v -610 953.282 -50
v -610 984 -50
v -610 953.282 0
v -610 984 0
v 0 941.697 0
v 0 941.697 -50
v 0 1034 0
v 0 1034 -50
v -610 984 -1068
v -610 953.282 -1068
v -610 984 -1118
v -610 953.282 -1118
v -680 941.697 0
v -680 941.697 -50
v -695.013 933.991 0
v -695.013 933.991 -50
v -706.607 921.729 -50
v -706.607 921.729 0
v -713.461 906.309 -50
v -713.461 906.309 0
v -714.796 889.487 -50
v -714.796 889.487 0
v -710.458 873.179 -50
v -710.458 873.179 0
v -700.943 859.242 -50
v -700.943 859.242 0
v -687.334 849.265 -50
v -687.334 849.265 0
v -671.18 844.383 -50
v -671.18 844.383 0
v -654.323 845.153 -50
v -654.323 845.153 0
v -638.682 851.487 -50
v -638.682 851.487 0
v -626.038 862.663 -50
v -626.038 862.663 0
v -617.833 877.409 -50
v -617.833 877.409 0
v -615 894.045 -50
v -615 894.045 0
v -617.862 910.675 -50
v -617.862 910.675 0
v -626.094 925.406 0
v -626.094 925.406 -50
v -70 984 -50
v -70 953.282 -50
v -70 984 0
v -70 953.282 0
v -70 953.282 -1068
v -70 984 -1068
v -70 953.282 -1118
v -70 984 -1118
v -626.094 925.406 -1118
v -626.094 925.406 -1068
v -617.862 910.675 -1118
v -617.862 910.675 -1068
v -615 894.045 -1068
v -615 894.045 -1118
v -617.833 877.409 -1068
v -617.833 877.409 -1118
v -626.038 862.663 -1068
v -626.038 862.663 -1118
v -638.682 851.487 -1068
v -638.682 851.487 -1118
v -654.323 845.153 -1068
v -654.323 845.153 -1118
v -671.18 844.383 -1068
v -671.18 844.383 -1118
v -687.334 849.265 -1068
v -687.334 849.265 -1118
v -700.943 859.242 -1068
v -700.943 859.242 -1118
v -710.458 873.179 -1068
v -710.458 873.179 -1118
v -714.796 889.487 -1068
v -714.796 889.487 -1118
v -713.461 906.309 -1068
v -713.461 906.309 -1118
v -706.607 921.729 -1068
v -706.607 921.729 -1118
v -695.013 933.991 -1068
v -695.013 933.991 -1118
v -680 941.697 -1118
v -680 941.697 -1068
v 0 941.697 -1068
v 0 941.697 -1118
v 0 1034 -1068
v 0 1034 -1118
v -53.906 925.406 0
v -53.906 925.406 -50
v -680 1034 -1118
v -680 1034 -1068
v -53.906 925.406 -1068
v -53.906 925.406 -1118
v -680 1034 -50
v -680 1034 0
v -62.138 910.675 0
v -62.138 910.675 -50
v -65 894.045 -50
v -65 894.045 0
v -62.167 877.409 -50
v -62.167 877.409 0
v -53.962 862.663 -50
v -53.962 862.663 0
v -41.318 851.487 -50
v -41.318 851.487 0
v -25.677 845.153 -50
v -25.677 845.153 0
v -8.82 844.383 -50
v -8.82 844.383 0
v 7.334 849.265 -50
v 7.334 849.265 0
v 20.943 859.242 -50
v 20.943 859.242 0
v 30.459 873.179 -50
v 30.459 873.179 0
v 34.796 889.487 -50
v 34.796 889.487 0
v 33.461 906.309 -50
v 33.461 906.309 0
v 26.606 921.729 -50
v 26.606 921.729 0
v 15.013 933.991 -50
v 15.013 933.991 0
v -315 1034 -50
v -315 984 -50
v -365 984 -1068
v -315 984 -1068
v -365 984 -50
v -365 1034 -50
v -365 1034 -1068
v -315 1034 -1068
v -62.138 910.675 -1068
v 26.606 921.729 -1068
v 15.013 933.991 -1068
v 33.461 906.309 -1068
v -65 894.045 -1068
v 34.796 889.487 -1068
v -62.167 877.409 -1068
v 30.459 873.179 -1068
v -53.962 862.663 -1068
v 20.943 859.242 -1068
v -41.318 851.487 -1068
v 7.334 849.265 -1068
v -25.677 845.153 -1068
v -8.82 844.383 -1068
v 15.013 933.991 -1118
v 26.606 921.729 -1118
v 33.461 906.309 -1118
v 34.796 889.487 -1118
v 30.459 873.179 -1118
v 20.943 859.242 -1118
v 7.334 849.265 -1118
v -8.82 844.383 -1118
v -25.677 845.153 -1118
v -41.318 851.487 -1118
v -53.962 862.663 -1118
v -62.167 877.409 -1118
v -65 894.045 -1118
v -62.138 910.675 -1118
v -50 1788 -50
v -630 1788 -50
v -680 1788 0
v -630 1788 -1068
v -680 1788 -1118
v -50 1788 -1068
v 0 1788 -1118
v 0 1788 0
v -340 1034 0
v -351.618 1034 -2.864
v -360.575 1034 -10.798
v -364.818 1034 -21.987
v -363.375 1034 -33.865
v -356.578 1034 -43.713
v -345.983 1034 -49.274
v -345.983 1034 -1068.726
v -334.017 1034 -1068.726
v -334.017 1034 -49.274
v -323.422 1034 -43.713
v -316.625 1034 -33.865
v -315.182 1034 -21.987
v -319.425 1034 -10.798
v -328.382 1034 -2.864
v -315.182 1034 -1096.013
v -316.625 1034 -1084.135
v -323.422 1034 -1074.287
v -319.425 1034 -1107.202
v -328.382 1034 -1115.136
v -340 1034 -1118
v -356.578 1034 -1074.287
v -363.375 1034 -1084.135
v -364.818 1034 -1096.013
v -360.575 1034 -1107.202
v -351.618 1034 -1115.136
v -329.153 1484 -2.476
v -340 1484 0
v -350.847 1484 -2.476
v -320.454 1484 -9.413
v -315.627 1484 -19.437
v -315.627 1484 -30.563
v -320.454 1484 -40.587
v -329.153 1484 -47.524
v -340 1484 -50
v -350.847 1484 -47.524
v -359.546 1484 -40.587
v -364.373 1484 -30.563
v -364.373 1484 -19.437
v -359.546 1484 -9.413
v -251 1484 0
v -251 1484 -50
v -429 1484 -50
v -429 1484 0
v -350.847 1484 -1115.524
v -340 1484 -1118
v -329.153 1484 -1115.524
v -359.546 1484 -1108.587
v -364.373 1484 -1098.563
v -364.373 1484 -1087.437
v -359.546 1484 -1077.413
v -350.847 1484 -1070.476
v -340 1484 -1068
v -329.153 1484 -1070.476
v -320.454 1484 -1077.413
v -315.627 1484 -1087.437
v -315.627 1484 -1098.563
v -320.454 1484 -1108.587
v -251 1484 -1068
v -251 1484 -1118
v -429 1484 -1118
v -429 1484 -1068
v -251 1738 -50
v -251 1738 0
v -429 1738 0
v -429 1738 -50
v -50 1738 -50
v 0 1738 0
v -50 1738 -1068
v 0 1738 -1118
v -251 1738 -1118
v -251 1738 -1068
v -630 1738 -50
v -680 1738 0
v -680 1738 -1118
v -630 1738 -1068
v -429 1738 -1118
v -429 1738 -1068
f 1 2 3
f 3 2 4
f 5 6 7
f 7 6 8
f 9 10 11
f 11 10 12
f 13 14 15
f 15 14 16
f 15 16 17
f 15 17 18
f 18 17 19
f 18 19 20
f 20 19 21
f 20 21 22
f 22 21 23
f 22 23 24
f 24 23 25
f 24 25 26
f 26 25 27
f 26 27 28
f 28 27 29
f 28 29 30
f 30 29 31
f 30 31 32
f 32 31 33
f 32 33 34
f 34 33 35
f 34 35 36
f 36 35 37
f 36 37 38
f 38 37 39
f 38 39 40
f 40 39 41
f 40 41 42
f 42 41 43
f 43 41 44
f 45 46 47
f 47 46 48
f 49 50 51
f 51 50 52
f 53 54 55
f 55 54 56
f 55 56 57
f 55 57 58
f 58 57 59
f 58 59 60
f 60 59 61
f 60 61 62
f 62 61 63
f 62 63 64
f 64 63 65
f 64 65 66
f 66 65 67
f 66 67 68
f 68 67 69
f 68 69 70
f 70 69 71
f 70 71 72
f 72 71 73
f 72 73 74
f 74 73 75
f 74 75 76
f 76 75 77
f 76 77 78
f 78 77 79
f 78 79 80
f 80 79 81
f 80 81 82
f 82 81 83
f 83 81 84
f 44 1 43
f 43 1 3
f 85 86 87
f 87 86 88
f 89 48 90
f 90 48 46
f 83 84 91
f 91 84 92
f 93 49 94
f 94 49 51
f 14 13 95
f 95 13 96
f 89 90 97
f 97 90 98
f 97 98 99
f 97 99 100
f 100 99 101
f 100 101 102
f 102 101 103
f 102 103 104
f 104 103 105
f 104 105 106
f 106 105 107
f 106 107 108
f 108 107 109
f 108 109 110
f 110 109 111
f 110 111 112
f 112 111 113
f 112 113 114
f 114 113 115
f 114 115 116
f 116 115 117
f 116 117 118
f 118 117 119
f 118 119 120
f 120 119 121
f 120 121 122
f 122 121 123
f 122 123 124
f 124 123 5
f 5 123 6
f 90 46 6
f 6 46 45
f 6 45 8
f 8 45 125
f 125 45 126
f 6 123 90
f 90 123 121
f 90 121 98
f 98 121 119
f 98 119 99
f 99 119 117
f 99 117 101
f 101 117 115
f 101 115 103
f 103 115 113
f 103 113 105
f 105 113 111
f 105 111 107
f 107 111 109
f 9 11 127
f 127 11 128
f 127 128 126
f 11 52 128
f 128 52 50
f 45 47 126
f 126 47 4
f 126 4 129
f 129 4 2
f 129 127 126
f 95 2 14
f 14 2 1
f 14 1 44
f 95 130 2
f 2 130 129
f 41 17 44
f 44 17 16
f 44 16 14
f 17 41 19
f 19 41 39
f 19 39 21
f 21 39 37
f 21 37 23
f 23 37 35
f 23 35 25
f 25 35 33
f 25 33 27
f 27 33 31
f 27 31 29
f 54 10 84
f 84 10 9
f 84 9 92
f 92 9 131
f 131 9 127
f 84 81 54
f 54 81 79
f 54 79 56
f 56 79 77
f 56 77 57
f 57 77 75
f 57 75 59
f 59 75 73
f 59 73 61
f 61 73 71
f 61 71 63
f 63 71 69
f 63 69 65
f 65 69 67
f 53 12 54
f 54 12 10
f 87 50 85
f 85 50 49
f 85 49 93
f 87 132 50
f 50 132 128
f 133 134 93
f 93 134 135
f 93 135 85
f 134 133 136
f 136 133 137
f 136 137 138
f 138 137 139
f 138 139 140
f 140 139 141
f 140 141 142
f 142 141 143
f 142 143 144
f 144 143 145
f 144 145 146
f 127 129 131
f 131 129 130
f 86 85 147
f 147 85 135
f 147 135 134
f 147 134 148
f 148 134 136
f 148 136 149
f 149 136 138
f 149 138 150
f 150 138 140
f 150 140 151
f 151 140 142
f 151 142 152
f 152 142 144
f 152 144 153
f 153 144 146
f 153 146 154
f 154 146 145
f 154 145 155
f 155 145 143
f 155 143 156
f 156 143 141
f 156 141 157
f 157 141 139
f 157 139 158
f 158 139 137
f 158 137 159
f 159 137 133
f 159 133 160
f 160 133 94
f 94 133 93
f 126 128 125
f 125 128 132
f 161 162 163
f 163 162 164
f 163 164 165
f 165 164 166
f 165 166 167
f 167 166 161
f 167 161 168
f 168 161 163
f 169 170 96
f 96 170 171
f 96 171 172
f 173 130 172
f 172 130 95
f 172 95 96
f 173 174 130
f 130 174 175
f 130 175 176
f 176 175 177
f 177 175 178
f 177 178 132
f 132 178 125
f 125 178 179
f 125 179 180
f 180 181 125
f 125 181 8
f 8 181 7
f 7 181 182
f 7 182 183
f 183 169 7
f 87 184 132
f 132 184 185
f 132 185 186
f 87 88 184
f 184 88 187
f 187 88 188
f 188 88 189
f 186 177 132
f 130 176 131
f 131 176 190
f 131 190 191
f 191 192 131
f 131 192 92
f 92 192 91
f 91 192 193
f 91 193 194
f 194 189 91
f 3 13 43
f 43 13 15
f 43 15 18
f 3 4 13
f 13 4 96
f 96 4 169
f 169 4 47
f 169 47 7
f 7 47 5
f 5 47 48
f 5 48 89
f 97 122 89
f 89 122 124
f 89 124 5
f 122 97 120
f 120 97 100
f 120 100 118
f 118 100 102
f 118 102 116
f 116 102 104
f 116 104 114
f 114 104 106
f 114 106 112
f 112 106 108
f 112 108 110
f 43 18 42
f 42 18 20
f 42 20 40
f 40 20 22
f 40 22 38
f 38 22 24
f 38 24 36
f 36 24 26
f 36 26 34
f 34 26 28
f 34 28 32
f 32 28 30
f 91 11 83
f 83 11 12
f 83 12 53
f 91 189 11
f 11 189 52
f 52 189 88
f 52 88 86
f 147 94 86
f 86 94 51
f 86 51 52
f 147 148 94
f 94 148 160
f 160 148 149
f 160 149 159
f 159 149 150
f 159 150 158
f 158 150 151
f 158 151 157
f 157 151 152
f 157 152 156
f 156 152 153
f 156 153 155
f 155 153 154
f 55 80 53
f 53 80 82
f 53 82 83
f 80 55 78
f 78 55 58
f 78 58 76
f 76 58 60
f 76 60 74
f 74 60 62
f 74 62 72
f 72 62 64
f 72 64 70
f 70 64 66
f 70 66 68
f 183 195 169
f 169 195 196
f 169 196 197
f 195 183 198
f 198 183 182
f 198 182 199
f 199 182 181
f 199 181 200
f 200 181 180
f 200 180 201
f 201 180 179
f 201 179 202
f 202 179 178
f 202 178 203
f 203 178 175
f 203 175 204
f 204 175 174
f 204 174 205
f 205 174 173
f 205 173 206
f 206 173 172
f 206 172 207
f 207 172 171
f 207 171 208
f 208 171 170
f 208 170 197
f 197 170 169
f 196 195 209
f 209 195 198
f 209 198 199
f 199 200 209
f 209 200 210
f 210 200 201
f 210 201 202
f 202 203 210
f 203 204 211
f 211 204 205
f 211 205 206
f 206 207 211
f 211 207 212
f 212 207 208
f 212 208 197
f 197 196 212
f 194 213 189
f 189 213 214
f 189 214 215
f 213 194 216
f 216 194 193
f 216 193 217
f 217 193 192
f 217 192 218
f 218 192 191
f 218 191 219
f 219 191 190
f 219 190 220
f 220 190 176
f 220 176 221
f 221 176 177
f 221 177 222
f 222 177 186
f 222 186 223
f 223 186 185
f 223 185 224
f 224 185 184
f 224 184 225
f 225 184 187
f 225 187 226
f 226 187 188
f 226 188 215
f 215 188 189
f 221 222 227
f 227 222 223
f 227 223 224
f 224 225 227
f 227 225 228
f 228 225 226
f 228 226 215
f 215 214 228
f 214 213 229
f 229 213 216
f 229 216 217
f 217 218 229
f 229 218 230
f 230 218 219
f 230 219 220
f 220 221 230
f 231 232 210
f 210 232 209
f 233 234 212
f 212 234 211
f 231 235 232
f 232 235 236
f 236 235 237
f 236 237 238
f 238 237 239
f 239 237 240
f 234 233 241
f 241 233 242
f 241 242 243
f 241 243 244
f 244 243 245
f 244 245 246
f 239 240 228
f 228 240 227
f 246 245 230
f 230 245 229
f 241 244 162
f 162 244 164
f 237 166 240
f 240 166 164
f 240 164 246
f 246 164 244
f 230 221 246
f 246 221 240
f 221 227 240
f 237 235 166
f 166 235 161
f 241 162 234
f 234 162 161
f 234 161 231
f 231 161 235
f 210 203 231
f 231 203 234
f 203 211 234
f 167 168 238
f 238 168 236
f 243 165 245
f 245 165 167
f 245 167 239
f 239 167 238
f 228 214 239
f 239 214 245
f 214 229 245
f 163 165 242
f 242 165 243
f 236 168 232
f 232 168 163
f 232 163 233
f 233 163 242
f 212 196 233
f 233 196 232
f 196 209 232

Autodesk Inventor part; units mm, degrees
ref_plane "YZ Plane" through (0, 0, 0) normal (1, 0, 0) x (0, 1, 0)
ref_plane "XZ Plane" through (0, 0, 0) normal (0, 1, 0) x (-1, 0, 0)
ref_plane "XY Plane" through (0, 0, 0) normal (0, 0, 1) x (1, 0, 0)
sketch "Sketch1" plane through (0, 0, 0) normal (0, 1, 0) x (-1, 0, 0)
  line L0 (0, 0) -> (680, 0)
  line L1 (680, 0) -> (680, -1118)
  line L2 (680, -1118) -> (0, -1118)
  line L3 (0, -1118) -> (0, 0)
  dimension "d0" = 680
  dimension "d1" = 1118
extrude "Extrusion1" add sketch "Sketch1" along normal blind 50
sketch "Sketch2" plane through (0, 50, 0) normal (0, 1, 0) x (1, 0, 0)
  line L0 (-50, 50) -> (-630, 50)
  line L1 (-630, 50) -> (-630, 1068)
  line L2 (-630, 1068) -> (-50, 1068)
  line L3 (-50, 1068) -> (-50, 50)
  point P0 (0, 0)
  dimension "d4" = 580
  dimension "d5" = 1018
extrude "Extrusion2" cut sketch "Sketch2" against normal blind 50
sketch "Sketch3" plane through (0, 50, 0) normal (0, 1, 0) x (1, 0, 0)
  point P0 (0, 0)
sketch "Sketch4" plane through (0, 50, 0) normal (0, 1, 0) x (1, 0, 0)
  line L0 (-680, 0) -> (0, 0) projected
  line L1 (-251, 0) -> (-429, 0)
  line L2 (-429, 0) -> (-429, 50)
  line L3 (-429, 50) -> (-251, 50)
  line L4 (-251, 50) -> (-251, 0)
  dimension "d8" = 178
  dimension "d9" = 50
extrude "Extrusion3" add sketch "Sketch4" along normal blind 254
sketch "Sketch5" plane through (0, 50, 0) normal (0, 1, 0) x (1, 0, 0)
  line L0 (0, 1118) -> (-680, 1118) projected
  line L1 (-630, 1068) -> (-50, 1068) projected
  line L2 (-251, 1118) -> (-429, 1118)
  line L3 (-429, 1118) -> (-429, 1068)
  line L4 (-429, 1068) -> (-251, 1068)
  line L5 (-251, 1068) -> (-251, 1118)
  point P0 (0, 0)
  dimension "d12" = 178
extrude "Extrusion4" add sketch "Sketch5" along normal blind 254
sketch "Sketch6" plane through (0, 304, 0) normal (0, 1, 0) x (1, 0, 0)
  circle A0 centre (-340, 25) radius 25
  point P0 (0, 0)
  dimension "d15" = 50
extrude "Extrusion5" add sketch "Sketch6" along normal blind 450
sketch "Sketch7" plane through (0, 304, 0) normal (0, 1, 0) x (1, 0, 0)
  circle A0 centre (-340, 1093) radius 25
  point P0 (0, 0)
  dimension "d18" = 50
extrude "Extrusion6" add sketch "Sketch7" along normal blind 450
sketch "Sketch8" plane through (-340, 754, -25) normal (0, 1, 0) x (1, 0, 0)
  line L0 (-340, -25) -> (340, -25) projected
  line L1 (25, -25) -> (-25, -25)
  line L2 (-25, -25) -> (-25, 1093)
  line L3 (-25, 1093) -> (25, 1093)
  line L4 (25, 1093) -> (25, -25)
  dimension "d21" = 50
  dimension "d22" = 1118
extrude "Extrusion7" add sketch "Sketch8" along normal blind 50
sketch "Sketch9" plane through (-315, 754, -25) normal (1, 0, 0) x (0, 0, -1)
  line L0 (0, 0) -> (-25, 0) projected
  line L1 (-25, 0) -> (25, 0)
  line L2 (25, 0) -> (25, 50)
  line L3 (25, 50) -> (-25, 50)
  line L4 (-25, 50) -> (-25, 0)
  point P0 (-25, -754)
  dimension "d25" = 50
  dimension "d26" = 50
extrude "Extrusion8" add sketch "Sketch9" along normal blind 315
sketch "Sketch10" plane through (-315, 754, -1093) normal (1, 0, 0) x (0, 0, -1)
  line L0 (25, 0) -> (25, 50) projected
  line L1 (25, 0) -> (-25, 0)
  line L2 (-25, 0) -> (-25, 50)
  line L3 (-25, 50) -> (25, 50)
  line L4 (25, 50) -> (25, 0)
  point P0 (-1093, -754)
  dimension "d29" = 50
  dimension "d30" = 50
extrude "Extrusion9" add sketch "Sketch10" along normal blind 315
sketch "Sketch11" plane through (-365, 754, -1093) normal (-1, 0, 0) x (0, 0, 1)
  line L0 (-25, 50) -> (1093, 50) projected
  line L1 (-25, 50) -> (25, 50)
  line L2 (25, 50) -> (25, 0)
  line L3 (25, 0) -> (-25, 0)
  line L4 (-25, 0) -> (-25, 50)
  point P0 (1093, -754)
  dimension "d33" = 50
  dimension "d34" = 50
extrude "Extrusion10" add sketch "Sketch11" along normal blind 315
sketch "Sketch12" plane through (-365, 754, -25) normal (-1, 0, 0) x (0, 0, 1)
  line L0 (-1043, 50) -> (25, 50) projected
  line L1 (25, 50) -> (-25, 50)
  line L2 (-25, 50) -> (-25, 0)
  line L3 (-25, 0) -> (25, 0)
  line L4 (25, 0) -> (25, 50)
  point P0 (25, -754)
  dimension "d37" = 50
  dimension "d38" = 50
extrude "Extrusion11" add sketch "Sketch12" along normal blind 315
sketch "Sketch13" plane through (0, 754, -1118) normal (0, 0, -1) x (-1, 0, 0)
  line L0 (680, 0) -> (680, 50) projected
  line L1 (680, 50) -> (610, 50)
  line L2 (610, 50) -> (610, 80.718)
  line L3 (650, 150) -> (680, 150)
  line L4 (680, 150) -> (680, 50)
  line L5 (0, 50) -> (70, 50)
  line L6 (70, 50) -> (70, 80.718)
  line L7 (30, 150) -> (0, 150)
  line L8 (0, 150) -> (0, 50)
  line L9 (650, 150) -> (610, 80.718)
  line L10 (650, 150) -> (680, 150) construction
  line L11 (30, 150) -> (70, 80.718)
  point P0 (0, -754)
extrude "Extrusion12" add sketch "Sketch13" against normal blind 1118
sketch "Sketch14" plane through (0, 754, -25) normal (1, 0, 0) x (0, 0, -1)
  line L0 (25, 50) -> (1043, 50) projected
  line L1 (1043, 50) -> (25, 50)
  line L2 (25, 50) -> (25, 150)
  line L3 (25, 150) -> (1043, 150)
  line L4 (1043, 150) -> (1043, 50)
  point P0 (-25, -754)
extrude "Extrusion13" cut sketch "Sketch14" against normal blind 1118
sketch "Sketch15" plane through (-340, 754, 0) normal (0, 0, 1) x (1, 0, 0)
  circle A0 centre (325, 140) radius 50
  circle A1 centre (-325, 140) radius 50
  line L0 (340, 0) -> (340, 150) projected
  line L1 (340, 0) -> (340, 150) projected
  line L2 (0, 0) -> (-340, 0) projected
  line L3 (0, 0) -> (340, 0) projected
  line L4 (340, 0) -> (340, 150) projected
  line L5 (340, 150) -> (310, 150) projected
  line L6 (310, 150) -> (270, 80.718) projected
  line L7 (270, 80.718) -> (270, 50) projected
  line L8 (270, 50) -> (-270, 50) projected
  line L9 (-270, 50) -> (-270, 80.718) projected
  line L10 (-270, 80.718) -> (-310, 150) projected
  line L11 (-310, 150) -> (-340, 150) projected
  line L12 (-340, 0) -> (-340, 150) projected
  point P0 (340, -754)
  point P1 (340, 92.303)
  point P2 (286.0942, 108.594)
extrude "Extrusion14" add sketch "Sketch15" against normal blind 1118 contours A0 L0 L5 L6 | L12 L11 L10 A1 | A1 L10 L11 L12 picked at (325.7082, 163.3183)
move or copy body "Rotate1" bodies to move or copy 1 copy no rotation origin (0, 0, 0) rotation axis (1, 0, 0) rotation angle 180 translate (0, 1788, -1118)
sketch "Sketch16" plane through (0, 1034, 0) normal (1, 0, 0) x (0, 0, -1)
  line L0 (50, 0) -> (50, -92.303) projected
  line L1 (50, -72.2577) -> (1068, -72.2577)
  line L2 (1068, -72.2577) -> (1068, -234.0796)
  line L3 (1068, -234.0796) -> (50, -234.0796)
  line L4 (50, -234.0796) -> (50, -72.2577)
  point P0 (0, -1034)
  dimension "d58" = 1018
extrude "Extrusion15" cut sketch "Sketch16" against normal blind 1118
sketch "Sketch17" plane through (-680, 1034, -1118) normal (-1, 0, 0) x (0, 0, 1)
  line L0 (1118, -80.718) -> (1068, -80.718) projected
  line L1 (1068, -80.718) -> (50, -80.718)
  line L2 (50, -80.718) -> (50, -329.635)
  line L3 (50, -329.635) -> (1068, -329.635)
  line L4 (1068, -329.635) -> (1068, -80.718)
  point P0 (1118, -1034)
  dimension "d61" = 1018
extrude "Extrusion16" cut sketch "Sketch17" against normal blind 1118
properties part number "Human-Subject-Cart"
